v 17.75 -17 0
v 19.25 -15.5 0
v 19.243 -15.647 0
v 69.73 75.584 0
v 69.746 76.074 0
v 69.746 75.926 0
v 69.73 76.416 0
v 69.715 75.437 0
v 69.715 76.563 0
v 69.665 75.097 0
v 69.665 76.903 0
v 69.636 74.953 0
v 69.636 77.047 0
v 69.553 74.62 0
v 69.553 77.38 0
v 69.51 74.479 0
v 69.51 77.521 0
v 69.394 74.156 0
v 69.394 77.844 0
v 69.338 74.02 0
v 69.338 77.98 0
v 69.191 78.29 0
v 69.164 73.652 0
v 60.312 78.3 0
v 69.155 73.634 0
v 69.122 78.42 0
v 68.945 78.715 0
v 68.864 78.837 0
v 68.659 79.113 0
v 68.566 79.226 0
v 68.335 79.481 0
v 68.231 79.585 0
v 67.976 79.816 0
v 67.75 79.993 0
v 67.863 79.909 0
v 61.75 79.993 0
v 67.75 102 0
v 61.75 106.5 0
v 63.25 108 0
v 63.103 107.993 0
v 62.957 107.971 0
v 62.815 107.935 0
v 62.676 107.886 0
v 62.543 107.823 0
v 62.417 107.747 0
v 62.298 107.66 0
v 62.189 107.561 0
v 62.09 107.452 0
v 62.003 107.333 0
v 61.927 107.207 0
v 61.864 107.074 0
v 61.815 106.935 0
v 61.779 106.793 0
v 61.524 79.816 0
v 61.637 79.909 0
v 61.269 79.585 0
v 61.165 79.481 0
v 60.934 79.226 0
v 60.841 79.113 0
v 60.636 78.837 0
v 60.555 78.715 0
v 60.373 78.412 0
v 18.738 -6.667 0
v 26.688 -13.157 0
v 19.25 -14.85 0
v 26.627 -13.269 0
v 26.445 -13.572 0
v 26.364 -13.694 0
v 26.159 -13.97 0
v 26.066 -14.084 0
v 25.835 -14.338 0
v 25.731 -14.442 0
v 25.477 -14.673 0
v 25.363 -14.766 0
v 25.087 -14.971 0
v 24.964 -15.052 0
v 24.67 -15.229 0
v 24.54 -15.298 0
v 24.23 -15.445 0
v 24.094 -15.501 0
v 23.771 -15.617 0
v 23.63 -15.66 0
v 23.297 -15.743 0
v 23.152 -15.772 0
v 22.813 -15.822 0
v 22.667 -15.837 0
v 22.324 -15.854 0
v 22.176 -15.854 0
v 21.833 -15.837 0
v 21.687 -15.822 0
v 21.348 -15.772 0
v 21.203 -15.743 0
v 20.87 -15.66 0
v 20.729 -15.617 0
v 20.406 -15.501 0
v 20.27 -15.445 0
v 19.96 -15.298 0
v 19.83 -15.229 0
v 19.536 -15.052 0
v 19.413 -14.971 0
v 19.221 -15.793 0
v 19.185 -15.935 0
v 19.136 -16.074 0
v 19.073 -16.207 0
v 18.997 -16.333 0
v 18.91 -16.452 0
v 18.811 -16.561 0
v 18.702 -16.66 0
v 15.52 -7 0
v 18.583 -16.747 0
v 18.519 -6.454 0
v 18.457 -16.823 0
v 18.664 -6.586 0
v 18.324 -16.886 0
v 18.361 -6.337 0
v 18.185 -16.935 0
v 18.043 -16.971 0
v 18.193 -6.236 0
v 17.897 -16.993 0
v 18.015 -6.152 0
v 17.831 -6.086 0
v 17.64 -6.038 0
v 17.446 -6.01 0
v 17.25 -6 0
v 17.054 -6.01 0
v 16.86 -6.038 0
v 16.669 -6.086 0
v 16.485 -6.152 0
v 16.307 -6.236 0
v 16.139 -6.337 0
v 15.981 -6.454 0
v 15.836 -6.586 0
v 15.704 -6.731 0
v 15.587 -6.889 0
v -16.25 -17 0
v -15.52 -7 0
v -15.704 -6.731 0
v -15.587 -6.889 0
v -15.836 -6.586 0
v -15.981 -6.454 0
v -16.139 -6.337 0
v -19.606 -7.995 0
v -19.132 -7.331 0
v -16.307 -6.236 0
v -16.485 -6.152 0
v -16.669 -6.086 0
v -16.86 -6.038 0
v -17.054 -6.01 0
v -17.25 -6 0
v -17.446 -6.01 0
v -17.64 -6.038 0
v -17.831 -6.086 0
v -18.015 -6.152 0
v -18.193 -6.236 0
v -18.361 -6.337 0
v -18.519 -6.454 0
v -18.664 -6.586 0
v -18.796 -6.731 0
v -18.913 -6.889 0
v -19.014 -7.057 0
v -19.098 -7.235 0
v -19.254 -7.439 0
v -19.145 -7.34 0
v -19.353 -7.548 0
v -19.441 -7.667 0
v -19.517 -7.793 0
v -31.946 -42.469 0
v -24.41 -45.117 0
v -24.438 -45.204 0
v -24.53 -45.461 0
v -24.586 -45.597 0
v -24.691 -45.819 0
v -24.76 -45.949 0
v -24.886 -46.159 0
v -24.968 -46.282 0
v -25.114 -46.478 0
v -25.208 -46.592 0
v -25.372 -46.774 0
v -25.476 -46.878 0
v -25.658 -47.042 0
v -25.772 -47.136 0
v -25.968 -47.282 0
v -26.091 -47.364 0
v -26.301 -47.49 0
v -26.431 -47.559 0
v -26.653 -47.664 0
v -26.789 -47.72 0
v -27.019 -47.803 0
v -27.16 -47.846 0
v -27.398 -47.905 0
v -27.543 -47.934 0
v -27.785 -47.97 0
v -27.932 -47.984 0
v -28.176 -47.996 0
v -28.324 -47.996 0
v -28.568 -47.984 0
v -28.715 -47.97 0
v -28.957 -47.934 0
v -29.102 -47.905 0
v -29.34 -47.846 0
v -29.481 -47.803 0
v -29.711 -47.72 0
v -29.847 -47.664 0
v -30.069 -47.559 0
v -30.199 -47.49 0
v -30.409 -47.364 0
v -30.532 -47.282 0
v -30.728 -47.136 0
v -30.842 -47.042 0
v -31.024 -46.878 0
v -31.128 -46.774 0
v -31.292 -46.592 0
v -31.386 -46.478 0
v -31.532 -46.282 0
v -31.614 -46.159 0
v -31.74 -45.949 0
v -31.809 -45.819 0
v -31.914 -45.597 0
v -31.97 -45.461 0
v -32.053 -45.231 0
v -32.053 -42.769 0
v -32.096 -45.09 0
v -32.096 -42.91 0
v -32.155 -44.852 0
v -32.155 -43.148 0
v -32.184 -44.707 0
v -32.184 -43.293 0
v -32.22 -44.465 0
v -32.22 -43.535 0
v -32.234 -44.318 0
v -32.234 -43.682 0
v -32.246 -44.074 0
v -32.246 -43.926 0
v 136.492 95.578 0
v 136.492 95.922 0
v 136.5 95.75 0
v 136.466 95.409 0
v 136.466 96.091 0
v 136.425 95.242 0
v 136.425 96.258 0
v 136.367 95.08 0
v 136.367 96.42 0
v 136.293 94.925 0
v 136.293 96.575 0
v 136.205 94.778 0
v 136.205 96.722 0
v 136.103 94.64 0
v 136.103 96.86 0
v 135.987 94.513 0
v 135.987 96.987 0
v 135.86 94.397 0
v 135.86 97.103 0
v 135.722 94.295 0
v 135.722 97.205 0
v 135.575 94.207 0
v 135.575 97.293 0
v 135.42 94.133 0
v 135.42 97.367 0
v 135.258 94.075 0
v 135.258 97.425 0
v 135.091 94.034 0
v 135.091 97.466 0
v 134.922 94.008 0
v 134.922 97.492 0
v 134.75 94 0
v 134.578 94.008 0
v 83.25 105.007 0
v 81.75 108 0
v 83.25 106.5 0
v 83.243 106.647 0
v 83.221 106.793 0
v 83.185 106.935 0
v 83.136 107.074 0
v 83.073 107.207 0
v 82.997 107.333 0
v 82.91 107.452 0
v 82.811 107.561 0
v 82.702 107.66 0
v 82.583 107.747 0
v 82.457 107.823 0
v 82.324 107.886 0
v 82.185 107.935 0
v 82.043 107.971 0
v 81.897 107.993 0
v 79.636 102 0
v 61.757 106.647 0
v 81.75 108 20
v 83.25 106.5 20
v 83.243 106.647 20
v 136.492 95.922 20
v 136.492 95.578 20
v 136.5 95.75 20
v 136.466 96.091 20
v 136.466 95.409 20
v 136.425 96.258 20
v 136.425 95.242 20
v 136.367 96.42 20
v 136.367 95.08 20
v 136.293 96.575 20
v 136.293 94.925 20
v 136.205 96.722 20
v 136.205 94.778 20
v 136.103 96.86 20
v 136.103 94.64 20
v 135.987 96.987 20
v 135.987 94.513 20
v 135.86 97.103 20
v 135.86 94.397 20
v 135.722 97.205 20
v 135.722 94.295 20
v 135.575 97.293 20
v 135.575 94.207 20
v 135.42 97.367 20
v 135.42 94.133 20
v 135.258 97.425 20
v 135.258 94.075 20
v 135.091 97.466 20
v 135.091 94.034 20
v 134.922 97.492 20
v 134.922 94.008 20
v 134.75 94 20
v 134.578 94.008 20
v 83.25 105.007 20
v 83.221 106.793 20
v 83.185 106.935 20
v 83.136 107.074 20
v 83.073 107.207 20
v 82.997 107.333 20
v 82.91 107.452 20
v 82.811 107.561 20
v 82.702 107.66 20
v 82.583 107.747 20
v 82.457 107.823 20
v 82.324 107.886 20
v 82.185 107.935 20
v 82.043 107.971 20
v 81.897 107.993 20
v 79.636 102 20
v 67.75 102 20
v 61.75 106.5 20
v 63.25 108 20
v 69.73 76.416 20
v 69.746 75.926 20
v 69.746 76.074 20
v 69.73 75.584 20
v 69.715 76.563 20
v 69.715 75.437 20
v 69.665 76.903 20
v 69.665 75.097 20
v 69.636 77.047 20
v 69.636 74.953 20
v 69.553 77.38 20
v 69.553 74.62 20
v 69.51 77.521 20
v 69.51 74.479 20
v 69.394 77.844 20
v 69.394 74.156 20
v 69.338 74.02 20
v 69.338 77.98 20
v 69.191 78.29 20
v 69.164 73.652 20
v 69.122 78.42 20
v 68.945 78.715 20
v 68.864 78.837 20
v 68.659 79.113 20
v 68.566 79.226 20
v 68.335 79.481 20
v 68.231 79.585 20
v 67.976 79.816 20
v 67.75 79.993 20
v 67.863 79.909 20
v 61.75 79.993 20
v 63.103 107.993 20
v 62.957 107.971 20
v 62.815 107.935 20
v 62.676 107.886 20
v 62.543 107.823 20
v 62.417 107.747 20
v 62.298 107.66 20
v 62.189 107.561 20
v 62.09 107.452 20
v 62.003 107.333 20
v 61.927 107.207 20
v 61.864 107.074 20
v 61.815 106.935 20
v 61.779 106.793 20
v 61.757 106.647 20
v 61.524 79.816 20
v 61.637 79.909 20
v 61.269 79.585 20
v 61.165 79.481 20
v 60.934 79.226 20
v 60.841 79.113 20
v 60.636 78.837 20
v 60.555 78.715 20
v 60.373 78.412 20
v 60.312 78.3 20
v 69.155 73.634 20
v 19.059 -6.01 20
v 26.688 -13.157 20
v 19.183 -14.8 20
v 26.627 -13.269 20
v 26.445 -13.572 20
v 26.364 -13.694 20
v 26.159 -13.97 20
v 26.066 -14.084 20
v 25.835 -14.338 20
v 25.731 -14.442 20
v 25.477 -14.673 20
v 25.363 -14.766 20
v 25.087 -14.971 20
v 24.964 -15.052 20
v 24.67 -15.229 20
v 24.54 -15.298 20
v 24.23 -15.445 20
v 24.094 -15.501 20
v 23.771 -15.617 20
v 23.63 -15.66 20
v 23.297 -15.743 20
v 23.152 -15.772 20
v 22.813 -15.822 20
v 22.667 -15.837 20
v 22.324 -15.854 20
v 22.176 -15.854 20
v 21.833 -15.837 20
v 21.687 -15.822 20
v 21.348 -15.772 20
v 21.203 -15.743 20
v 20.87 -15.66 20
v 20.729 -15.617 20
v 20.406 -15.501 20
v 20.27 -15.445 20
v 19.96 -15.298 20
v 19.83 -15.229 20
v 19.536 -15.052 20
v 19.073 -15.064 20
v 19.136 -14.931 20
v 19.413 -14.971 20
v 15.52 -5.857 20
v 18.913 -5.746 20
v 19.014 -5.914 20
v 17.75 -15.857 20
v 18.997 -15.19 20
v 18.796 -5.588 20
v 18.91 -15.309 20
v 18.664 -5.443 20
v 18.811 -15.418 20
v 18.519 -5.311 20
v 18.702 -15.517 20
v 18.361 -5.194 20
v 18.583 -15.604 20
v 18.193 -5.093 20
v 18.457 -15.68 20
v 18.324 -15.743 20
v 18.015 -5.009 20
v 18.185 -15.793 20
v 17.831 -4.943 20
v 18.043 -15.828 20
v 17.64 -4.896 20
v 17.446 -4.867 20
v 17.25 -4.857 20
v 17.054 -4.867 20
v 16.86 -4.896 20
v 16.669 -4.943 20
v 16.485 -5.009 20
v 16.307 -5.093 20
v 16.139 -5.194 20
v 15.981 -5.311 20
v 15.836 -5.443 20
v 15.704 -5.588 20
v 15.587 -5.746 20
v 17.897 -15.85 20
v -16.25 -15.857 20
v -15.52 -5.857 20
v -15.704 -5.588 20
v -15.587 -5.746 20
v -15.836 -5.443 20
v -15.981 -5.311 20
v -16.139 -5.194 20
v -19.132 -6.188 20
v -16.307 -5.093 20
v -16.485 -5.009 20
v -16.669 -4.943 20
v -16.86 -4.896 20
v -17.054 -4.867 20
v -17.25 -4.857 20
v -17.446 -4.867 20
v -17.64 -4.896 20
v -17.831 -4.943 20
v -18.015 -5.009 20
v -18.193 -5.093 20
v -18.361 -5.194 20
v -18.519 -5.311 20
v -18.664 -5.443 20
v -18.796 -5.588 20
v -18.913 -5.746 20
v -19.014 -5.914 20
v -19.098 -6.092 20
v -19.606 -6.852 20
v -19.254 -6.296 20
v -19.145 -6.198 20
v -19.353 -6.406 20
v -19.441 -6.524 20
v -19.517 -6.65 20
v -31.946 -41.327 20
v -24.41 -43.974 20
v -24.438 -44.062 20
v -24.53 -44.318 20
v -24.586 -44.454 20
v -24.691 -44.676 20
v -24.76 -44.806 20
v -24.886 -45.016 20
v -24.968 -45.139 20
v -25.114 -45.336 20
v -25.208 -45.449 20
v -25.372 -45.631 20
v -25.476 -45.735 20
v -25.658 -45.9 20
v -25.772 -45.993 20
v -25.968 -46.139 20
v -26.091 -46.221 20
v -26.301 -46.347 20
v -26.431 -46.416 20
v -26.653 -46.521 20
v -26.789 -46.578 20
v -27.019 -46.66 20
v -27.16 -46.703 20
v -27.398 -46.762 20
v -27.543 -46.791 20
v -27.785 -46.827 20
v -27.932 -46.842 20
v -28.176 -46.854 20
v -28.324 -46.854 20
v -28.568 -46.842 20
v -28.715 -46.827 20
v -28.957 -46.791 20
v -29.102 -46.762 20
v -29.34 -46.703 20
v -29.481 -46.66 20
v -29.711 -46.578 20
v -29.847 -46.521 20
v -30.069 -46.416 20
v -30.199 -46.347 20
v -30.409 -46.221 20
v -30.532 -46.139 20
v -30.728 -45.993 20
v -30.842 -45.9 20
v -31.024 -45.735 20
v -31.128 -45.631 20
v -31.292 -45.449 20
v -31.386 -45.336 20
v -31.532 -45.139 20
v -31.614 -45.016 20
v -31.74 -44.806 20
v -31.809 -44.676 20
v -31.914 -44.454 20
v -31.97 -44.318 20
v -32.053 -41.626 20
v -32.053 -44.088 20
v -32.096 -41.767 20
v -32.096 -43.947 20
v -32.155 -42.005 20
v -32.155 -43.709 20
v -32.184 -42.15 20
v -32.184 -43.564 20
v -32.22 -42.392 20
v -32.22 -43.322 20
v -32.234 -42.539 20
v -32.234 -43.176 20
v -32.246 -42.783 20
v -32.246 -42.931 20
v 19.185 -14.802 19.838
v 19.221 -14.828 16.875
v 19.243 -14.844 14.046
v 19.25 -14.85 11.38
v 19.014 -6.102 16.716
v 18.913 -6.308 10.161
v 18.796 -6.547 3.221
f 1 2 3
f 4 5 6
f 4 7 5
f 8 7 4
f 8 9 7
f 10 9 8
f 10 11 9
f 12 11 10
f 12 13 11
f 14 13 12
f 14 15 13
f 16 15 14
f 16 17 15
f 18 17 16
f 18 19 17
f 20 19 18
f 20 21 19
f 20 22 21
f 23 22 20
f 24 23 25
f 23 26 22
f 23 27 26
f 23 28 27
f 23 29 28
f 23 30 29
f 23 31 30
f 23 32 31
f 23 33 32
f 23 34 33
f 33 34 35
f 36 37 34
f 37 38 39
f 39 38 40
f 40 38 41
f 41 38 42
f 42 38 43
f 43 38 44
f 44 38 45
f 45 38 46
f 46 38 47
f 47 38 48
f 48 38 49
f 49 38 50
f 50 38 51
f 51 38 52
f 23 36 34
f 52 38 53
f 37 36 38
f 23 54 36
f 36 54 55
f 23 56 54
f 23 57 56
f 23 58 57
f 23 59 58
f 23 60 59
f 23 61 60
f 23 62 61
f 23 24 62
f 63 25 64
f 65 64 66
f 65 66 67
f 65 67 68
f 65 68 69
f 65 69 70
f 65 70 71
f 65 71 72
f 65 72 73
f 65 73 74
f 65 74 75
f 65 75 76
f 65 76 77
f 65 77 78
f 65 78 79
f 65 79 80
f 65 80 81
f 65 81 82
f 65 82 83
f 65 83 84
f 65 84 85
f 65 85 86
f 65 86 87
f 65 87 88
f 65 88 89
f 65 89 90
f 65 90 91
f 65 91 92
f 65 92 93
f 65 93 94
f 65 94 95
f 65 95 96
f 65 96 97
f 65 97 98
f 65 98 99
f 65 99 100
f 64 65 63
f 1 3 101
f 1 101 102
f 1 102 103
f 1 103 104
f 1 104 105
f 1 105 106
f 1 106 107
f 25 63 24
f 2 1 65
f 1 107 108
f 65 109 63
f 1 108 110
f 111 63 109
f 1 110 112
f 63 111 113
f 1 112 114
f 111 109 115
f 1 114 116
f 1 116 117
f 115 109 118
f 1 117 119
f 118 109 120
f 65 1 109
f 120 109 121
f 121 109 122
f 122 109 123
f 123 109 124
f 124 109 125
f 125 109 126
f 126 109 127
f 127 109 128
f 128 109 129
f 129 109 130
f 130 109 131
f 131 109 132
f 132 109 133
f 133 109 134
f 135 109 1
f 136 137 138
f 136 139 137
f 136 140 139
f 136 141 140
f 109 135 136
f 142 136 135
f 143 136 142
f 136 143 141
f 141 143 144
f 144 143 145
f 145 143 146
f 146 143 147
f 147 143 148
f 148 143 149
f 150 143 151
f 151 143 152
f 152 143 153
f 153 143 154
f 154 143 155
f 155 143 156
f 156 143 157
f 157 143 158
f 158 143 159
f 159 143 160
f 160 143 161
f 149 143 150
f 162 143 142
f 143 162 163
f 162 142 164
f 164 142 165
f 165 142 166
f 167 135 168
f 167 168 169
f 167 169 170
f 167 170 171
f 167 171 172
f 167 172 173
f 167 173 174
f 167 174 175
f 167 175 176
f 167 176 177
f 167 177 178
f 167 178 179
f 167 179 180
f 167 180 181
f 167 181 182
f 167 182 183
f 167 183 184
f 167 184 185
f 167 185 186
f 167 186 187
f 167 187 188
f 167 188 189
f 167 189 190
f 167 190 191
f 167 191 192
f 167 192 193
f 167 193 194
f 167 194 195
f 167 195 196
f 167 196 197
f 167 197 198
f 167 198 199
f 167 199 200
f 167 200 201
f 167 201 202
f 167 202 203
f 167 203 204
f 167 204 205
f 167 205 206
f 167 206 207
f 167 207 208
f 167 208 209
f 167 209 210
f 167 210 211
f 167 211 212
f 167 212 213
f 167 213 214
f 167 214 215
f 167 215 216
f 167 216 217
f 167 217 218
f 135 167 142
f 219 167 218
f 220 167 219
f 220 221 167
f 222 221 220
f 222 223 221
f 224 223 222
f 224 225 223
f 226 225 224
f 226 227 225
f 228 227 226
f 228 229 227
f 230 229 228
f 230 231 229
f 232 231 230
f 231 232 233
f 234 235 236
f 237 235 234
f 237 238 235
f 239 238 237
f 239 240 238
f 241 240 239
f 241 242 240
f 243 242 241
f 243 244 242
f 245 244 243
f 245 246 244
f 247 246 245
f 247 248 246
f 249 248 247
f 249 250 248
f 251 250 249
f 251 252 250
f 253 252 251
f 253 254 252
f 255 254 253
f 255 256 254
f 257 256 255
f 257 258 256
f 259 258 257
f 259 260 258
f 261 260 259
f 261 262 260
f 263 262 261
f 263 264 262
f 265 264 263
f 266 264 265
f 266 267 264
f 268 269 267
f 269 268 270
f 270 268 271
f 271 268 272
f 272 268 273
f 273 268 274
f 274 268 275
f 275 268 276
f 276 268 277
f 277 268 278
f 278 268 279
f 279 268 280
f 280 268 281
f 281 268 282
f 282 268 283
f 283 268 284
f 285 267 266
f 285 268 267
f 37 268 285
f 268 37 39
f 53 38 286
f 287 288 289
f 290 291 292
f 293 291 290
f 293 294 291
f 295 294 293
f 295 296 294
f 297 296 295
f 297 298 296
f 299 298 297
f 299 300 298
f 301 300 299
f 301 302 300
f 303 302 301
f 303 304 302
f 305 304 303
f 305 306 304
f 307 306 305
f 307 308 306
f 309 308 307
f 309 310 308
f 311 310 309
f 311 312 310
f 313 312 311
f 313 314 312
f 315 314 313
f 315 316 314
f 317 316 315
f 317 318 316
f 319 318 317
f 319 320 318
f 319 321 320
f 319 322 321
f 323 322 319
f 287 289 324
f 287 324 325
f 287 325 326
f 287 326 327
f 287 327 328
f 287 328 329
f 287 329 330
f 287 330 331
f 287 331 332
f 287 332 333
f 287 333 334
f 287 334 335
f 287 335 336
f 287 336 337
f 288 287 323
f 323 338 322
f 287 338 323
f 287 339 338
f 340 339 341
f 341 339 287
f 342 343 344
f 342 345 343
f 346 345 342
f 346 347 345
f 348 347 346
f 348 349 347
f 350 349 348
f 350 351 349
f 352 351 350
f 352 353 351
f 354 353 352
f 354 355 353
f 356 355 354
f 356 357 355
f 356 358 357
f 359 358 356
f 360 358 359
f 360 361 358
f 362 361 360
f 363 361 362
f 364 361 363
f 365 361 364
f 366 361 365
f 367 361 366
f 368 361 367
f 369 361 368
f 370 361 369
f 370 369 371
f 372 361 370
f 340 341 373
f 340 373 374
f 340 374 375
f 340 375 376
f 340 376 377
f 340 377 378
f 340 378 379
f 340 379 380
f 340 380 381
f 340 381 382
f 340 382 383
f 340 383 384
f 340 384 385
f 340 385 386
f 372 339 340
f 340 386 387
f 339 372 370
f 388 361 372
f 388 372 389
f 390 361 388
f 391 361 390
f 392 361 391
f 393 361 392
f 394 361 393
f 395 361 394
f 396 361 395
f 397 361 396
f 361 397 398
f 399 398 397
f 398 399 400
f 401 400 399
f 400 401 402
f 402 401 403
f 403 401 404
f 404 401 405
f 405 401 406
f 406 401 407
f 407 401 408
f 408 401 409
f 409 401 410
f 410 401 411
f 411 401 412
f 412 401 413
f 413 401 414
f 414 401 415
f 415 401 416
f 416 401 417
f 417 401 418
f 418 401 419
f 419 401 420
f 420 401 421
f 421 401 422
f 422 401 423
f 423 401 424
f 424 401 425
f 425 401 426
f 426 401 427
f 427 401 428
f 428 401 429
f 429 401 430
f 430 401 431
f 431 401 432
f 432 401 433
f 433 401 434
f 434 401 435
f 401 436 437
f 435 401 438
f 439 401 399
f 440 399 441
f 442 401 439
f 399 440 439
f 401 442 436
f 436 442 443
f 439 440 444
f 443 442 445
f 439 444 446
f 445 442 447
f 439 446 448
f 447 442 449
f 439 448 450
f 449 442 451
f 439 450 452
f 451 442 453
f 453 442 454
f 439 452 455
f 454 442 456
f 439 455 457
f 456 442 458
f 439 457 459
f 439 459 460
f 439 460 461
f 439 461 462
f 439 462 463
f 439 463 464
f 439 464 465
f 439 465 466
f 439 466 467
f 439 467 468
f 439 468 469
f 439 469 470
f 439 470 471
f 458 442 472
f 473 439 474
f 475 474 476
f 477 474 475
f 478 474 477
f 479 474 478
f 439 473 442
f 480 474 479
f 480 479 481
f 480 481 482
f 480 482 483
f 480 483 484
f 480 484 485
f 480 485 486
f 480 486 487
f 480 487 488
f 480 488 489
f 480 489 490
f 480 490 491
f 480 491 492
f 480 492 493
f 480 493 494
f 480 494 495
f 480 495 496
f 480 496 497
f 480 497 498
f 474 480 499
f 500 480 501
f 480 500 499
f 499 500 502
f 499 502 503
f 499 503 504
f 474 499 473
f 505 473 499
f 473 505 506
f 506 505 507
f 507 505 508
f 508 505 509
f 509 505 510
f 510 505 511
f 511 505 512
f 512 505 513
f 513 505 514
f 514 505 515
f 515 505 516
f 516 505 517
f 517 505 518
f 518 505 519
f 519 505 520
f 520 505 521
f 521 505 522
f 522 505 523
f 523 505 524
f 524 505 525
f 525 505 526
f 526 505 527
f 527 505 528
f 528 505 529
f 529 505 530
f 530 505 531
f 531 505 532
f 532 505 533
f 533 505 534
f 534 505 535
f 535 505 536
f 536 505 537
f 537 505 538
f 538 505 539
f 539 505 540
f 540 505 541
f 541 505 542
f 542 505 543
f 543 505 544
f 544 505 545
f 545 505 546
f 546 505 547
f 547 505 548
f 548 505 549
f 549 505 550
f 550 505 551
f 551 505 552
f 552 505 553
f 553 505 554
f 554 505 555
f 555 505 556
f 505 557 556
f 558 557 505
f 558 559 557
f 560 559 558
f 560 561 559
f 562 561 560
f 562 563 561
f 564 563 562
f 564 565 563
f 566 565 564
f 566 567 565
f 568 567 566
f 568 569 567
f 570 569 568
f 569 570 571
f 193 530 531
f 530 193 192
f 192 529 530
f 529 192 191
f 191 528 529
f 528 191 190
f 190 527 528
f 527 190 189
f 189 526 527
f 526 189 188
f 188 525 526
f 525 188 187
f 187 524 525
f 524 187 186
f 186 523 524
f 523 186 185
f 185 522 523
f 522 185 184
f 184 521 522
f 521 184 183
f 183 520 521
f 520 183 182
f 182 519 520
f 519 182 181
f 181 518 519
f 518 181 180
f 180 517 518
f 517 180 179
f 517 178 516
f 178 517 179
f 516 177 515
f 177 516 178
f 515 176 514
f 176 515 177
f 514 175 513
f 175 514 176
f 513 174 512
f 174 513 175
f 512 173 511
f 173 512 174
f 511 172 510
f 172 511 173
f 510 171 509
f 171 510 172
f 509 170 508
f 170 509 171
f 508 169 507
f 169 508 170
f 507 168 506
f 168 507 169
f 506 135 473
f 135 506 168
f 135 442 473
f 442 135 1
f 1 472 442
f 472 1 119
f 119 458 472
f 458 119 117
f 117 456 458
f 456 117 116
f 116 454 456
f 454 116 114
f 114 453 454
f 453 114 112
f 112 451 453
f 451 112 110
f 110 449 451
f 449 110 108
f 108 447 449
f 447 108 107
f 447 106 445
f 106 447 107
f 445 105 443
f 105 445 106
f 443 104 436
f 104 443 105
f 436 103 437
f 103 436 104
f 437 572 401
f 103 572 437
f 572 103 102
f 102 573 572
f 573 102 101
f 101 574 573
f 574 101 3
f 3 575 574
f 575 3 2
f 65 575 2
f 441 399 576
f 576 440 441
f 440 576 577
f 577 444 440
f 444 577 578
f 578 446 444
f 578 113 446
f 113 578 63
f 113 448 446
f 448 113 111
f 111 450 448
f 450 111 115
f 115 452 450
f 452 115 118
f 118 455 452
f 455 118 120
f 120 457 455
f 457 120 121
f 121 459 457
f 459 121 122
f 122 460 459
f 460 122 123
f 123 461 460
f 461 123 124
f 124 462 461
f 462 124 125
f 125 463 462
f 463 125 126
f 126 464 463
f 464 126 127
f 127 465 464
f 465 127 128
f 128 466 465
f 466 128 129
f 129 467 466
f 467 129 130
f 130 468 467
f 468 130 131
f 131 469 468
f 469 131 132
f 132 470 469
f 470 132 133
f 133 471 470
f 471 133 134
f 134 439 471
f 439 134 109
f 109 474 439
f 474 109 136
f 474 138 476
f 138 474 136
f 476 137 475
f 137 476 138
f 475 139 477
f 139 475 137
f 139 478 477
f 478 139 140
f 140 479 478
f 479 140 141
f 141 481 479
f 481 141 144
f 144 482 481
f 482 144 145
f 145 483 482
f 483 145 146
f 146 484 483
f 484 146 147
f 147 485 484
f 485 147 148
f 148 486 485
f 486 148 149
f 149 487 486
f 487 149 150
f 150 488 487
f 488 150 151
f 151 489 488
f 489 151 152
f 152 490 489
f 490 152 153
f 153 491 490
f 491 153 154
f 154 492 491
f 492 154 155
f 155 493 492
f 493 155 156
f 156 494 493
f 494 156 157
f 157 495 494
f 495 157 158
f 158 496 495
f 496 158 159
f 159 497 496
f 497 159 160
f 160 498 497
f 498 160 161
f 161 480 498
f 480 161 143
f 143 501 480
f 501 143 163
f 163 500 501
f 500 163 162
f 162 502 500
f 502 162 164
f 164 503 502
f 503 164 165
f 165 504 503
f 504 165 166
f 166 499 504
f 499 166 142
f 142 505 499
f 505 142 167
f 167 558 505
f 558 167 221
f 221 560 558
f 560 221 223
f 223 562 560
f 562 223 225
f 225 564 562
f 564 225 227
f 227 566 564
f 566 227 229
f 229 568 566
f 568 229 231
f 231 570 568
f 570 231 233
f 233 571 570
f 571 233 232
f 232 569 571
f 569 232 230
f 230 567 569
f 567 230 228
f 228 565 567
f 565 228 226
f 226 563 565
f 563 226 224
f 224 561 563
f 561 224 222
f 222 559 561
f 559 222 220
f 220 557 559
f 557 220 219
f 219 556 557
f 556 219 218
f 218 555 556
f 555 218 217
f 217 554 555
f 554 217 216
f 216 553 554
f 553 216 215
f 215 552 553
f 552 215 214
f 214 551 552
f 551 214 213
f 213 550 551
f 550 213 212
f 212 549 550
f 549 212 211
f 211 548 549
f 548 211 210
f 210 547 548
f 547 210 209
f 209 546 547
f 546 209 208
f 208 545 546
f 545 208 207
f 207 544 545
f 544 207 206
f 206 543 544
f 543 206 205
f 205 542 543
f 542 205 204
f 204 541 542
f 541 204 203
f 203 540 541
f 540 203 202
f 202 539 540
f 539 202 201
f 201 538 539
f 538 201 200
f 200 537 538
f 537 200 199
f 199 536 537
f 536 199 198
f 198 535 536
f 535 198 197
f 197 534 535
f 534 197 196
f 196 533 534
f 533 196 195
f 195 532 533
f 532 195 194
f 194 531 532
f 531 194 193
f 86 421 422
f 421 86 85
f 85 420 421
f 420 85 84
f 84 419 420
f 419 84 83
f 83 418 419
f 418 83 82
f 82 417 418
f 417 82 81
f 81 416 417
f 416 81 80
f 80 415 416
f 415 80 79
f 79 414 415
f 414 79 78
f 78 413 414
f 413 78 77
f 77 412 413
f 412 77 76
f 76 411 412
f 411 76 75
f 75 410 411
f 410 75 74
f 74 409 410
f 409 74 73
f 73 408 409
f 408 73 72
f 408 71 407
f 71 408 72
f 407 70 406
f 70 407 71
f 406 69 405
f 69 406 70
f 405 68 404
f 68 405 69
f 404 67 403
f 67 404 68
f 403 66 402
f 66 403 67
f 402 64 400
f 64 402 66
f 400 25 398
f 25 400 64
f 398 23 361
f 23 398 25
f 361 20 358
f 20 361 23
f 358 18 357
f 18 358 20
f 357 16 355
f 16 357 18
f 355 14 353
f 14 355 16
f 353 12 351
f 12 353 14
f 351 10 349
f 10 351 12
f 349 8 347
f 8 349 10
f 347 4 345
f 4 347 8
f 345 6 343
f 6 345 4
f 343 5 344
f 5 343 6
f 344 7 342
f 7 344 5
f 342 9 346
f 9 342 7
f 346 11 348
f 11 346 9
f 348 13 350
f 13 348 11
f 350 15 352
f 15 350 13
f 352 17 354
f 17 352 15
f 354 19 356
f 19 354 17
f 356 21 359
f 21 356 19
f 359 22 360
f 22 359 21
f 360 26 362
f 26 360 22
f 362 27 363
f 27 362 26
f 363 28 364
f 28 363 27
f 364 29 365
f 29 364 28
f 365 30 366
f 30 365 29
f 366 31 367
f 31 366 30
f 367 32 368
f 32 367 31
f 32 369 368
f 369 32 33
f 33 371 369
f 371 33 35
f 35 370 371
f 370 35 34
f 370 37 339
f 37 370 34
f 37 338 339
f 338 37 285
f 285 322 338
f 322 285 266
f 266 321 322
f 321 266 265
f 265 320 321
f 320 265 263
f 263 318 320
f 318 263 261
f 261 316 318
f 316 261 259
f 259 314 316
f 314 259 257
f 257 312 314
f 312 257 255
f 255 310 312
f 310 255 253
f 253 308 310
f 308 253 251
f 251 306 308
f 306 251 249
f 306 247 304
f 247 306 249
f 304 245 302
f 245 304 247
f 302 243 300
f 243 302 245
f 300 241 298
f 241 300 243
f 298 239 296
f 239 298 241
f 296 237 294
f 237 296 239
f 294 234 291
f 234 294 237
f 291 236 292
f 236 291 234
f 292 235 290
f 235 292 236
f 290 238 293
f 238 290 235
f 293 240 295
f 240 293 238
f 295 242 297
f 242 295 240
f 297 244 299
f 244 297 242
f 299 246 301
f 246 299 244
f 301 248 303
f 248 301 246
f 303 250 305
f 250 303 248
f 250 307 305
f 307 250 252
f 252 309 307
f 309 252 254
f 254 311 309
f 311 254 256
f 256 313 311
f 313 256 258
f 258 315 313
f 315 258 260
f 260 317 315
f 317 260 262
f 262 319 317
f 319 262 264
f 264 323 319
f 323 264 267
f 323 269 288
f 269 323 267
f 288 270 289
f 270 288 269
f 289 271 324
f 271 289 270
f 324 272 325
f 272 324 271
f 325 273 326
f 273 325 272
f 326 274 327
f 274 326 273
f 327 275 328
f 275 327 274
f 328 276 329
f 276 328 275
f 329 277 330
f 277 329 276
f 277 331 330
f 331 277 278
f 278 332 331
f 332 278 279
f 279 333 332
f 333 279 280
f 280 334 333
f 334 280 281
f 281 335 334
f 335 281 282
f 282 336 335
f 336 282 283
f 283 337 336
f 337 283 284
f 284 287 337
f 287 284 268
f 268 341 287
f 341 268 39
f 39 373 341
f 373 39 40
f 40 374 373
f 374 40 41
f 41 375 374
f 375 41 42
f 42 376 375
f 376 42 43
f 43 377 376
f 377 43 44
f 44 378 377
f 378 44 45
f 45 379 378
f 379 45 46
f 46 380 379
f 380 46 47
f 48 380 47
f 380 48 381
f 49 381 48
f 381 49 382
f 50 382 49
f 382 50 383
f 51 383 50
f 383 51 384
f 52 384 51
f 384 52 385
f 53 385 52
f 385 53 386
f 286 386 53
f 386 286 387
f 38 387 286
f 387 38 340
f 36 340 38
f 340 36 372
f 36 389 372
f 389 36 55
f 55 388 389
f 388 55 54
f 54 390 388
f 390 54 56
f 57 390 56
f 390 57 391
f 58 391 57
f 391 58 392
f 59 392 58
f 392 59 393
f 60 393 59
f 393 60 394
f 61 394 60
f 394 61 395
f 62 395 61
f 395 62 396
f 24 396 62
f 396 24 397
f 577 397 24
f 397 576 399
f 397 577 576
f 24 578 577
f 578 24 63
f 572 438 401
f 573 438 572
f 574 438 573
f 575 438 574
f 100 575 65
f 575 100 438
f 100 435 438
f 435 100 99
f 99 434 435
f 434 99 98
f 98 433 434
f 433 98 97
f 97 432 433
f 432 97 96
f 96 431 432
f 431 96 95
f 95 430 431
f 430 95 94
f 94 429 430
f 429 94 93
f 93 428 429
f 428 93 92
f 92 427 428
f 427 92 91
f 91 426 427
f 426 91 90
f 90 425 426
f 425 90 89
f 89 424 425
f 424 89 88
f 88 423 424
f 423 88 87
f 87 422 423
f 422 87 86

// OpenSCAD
// =============================================================================
// windowblock – Buegel gegen das Zuschlagen eines gekippten Fensters
// =============================================================================
// Ein flacher Buegel liegt waagerecht hinter dem (in Kippstellung
// hochgestellten) Fenstergriff und stuetzt sich an drei Stellen ab:
//   - Fuss:  auf dem Fluegelrahmen links neben dem Griff   (drueckt zum Zimmer)
//   - Wiege: an der Rueckseite des Griffs                  (drueckt zum Fenster)
//   - Feder: flach auf der Zimmerwand neben der Laibung    (drueckt zum Zimmer)
// Das ist ein Dreipunkt-Biegebalken: Fuss und Feder halten, die Wiege wird
// vom Griff belastet. Will der Fluegel zufallen, drueckt der Griff gegen die
// Wiege, der Buegel stemmt sich ueber die Feder gegen die Wand.
//
// Warum eine Feder: Die Vorgaenger (Oese, Gabel) hatten Spiel an Griff,
// Rahmen und Wand, weil drei Kontakte mit Messtoleranz nie gleichzeitig
// anliegen. Hier ist die Blattfeder an der Wand ungespannt um `preload` zu
// lang. Eingebaut drueckt sie alle drei Kontakte an -> kein Spiel, und
// Messfehler bis +-leaf_gap / preload werden ausgeglichen. Bei einer Boee
// federt der Buegel hoechstens `leaf_gap` ein, dann liegt die Federwurzel
// starr an der Wand.
//
// EINBAU: Wiege hinter den Griff schieben, Fuss auf den Fluegelrahmen.
// Dann das Wandende um die Laibungskante schwenken und die Feder flach auf die
// Wand druecken. AUSBAU: Wandende zum Zimmer ziehen.
//
// Koordinaten (Draufsicht, Griff rechts am Fluegel):
//   X = parallel zum Fenster, +X Richtung rechte Laibung
//   Y = senkrecht zum Fenster, +Y Richtung Zimmer
//   Z = senkrecht nach oben (Einbaulage = Drucklage)
//   Mitte des Griffhebels liegt bei Z = 0 bei (0, 0).
//
// DRUCK: flach liegend wie modelliert, Z = 0 aufs Bett. Die Feder biegt sich
// in der Schichtebene. Stuetzfrei. ASA, >= 4 Perimeter, >= 40 % Infill.
// Bettseite gehoert beim Einbau nach unten, sonst stimmt die Neigung nicht.
// =============================================================================

// ---- Messwerte (am Fenster gemessen 2026-10-27, Fluegel voll gekippt) ------
// Hoehen Z ab Austritt des Hebels aus der Rosette (~ Drehpunkt), entlang des
// Hebels. Alle Masse auf Hoehe H = 35 mm, wo der Buegel sitzt.
lever_w   = 29.5;  // Breite Griffhebel (X), Schieblehre
lever_t   = 14;    // Dicke Griffhebel (Y), Rueckseite flach
lever_straight = 70;  // gerader Teil (bis hier gemessen)
lever_gap = 41;    // Rueckseite Hebel -> Fluegelflaeche
gap_reveal = 56;   // laibungsseitige Flanke des Hebels -> Laibung
frame_left = 27;   // ebener Fluegelrahmen links neben dem Hebel (ab Flanke)
rosette_top = 32.5;  // Rosette 65 hoch, mittig um den Drehpunkt
// Rueckseite Hebel -> Ebene der Zimmerwand (Lineal auf der Wand). Der Hebel
// steht in Kippstellung schraeg (oben naeher am Zimmer).
wall_a = 105;  wall_a_z = 35;
wall_b = 103;  wall_b_z = 70;

// ---- Lage des Buegels -------------------------------------------------------
bar_z = 35;  // Hoehe der Buegelunterkante (H)

// Wandabstand dort, wo der Buegel sitzt (linear ueber die Hebelhoehe)
lever_tilt = atan((wall_a - wall_b) / (wall_b_z - wall_a_z));  // gegen Z
x_dist     = gap_reveal + lever_w / 2;   // Mitte Hebel -> Laibung
y_dist     = wall_a - (bar_z - wall_a_z) * tan(lever_tilt)
             - lever_t / 2;              // Mitte Hebel -> Zimmerwand

// ---- Feder ------------------------------------------------------------------
preload  = 4;   // Federspitze ragt ungespannt so weit hinter die Wandflaeche
leaf_gap = 4;   // Luft Federwurzel -> Wand, eingebaut (= Federweg bis Block)
leaf_t   = 3.5; // Dicke der Blattfeder
leaf_len = 55;  // freie Laenge der Blattfeder

// ---- Passung ----------------------------------------------------------------
rib      = 1;    // Rippen neben dem Hebel ragen so weit vor die Rueckseite
rib_clear = 0.5; // Luft zwischen Rippe und Hebelflanke
x_clear  = 3;    // Luft Laibungsschenkel -> Laibung (fuehrt nur, traegt nicht)

// ---- Form -------------------------------------------------------------------
height   = 20;  // Hoehe des Buegels
arm_w    = 10;  // Breite von Wiege und Arm
wall     = 6;   // Wandstaerke Laibungsschenkel
root_len = 12;  // Federwurzel entlang der Wand ab Schenkelaussenseite
root_t   = 6;   // Dicke der Federwurzel
foot_w   = 8;   // Durchmesser der runden Fussspitze
leg_len  = 25;  // Schenkel entlang der Laibung (ab Wandflaeche)
rib_r    = 2;   // Radius der Rippen
round_r  = 1.5; // Verrundung der Profilecken

show_context = false;  // true: Fluegel, Griff und Wand als Geister anzeigen

$fn = 64;

// ---- abgeleitete Werte ------------------------------------------------------
y_back  = -lever_t / 2;                       // Rueckseite Hebel (Wiege)
y_frame = y_back - lever_gap;                 // Flaeche Fluegelrahmen
rib_x   = lever_w / 2 + rib_clear + rib_r;    // Mitte der Rippen
cr_x    = rib_x + rib_r;                      // halbe Laenge der Wiege
foot_x  = -lever_w / 2 - frame_left / 2;      // Fuss mittig auf dem Rahmenstreifen
foot_y  = y_frame + foot_w / 2;               // Mitte der Fussspitze
x_rev   = x_dist - x_clear;                   // Aussenflaeche Schenkel
root_y  = y_dist + leaf_gap;                  // Innenflaeche Federwurzel
leaf_x0 = x_rev + root_len;                   // Federansatz
lean_dy = height * tan(lever_tilt);           // Versatz der Wiege oben

assert(bar_z > rosette_top, "Buegel auf Hoehe der Rosette");
assert(x_rev - wall > cr_x + arm_w, "x_dist zu klein fuer den Arm");
assert(bar_z + height <= lever_straight, "Buegel hoeher als der gerade Hebelteil");

// ---- Hilfen -----------------------------------------------------------------
module bar(p0, p1, w) {
    hull() {
        translate(p0) circle(d = w);
        translate(p1) circle(d = w);
    }
}

module rounded(r) {
    offset(r = r) offset(delta = -r) children();
}

// Neigt Z-Extrusionen wie den Hebel: oben weiter Richtung Zimmer (+Y).
module lean() {
    multmatrix([[1, 0, 0, 0],
                [0, 1, tan(lever_tilt), 0],
                [0, 0, 1, 0]]) children();
}

// ---- 2D-Profile -------------------------------------------------------------
// Wiege hinter dem Hebel, Fuss zum Fluegelrahmen (beide folgen der Neigung)
module cradle_profile() {
    rounded(round_r) union() {
        translate([-cr_x, y_back - arm_w]) square([2 * cr_x, arm_w]);
        hull() {
            translate([-cr_x, y_back - arm_w]) square([3, arm_w]);
            translate([foot_x, foot_y]) circle(d = foot_w);
        }
    }
    // Rippen links und rechts neben dem Hebel
    for (s = [-1, 1])
        intersection() {
            translate([s * rib_x, y_back + rib - rib_r]) circle(r = rib_r);
            translate([-cr_x, y_back - arm_w]) square([2 * cr_x, arm_w + rib]);
        }
}

// Arm, Laibungsschenkel, Federwurzel (starr)
module arm_profile() {
    rounded(round_r) union() {
        // Arm: rechtes Wiegenende -> unteres Schenkelende. Der Ansatz liegt
        // rechts der Rippe und um die Neigung ueber `height` vorn, sonst
        // ragt er oben in den Hebel.
        bar([cr_x + arm_w / 2 - rib_r, y_back - arm_w / 2 + lean_dy],
            [x_rev - wall / 2, y_dist - leg_len + wall / 2], arm_w);
        // Schenkel entlang der Laibung, bis ueber die Wandflaeche
        translate([x_rev - wall, y_dist - leg_len])
            square([wall, leg_len + leaf_gap + root_t]);
        // Federwurzel entlang der Wand
        translate([x_rev - wall, root_y])
            square([wall + root_len + leaf_t, root_t]);
    }
}

// Blattfeder: ungespannt schraeg, Spitze `preload` hinter der Wandflaeche
module leaf_profile() {
    bar([leaf_x0, root_y + leaf_t / 2],
        [leaf_x0 + leaf_len, y_dist - preload + leaf_t / 2], leaf_t);
}

// ---- Teil -------------------------------------------------------------------
module part() {
    lean() linear_extrude(height = height) cradle_profile();
    linear_extrude(height = height) {
        arm_profile();
        leaf_profile();
    }
}

// ---- Kontext (nur Ansicht) --------------------------------------------------
module context_lever() {
    lean() translate([-lever_w / 2, -lever_t / 2, -bar_z])
        cube([lever_w, lever_t, lever_straight + 30]);
}
module context_frame() {
    lean() translate([-150, y_frame - 70, -bar_z])
        cube([150 + x_dist - 15, 70, lever_straight + 30]);
}
module context_wall() {
    translate([x_dist, y_dist - 220, -bar_z]) cube([120, 220, lever_straight + 30]);
}

part();
if (show_context) %union() {
    context_lever();
    context_frame();
    context_wall();
}
